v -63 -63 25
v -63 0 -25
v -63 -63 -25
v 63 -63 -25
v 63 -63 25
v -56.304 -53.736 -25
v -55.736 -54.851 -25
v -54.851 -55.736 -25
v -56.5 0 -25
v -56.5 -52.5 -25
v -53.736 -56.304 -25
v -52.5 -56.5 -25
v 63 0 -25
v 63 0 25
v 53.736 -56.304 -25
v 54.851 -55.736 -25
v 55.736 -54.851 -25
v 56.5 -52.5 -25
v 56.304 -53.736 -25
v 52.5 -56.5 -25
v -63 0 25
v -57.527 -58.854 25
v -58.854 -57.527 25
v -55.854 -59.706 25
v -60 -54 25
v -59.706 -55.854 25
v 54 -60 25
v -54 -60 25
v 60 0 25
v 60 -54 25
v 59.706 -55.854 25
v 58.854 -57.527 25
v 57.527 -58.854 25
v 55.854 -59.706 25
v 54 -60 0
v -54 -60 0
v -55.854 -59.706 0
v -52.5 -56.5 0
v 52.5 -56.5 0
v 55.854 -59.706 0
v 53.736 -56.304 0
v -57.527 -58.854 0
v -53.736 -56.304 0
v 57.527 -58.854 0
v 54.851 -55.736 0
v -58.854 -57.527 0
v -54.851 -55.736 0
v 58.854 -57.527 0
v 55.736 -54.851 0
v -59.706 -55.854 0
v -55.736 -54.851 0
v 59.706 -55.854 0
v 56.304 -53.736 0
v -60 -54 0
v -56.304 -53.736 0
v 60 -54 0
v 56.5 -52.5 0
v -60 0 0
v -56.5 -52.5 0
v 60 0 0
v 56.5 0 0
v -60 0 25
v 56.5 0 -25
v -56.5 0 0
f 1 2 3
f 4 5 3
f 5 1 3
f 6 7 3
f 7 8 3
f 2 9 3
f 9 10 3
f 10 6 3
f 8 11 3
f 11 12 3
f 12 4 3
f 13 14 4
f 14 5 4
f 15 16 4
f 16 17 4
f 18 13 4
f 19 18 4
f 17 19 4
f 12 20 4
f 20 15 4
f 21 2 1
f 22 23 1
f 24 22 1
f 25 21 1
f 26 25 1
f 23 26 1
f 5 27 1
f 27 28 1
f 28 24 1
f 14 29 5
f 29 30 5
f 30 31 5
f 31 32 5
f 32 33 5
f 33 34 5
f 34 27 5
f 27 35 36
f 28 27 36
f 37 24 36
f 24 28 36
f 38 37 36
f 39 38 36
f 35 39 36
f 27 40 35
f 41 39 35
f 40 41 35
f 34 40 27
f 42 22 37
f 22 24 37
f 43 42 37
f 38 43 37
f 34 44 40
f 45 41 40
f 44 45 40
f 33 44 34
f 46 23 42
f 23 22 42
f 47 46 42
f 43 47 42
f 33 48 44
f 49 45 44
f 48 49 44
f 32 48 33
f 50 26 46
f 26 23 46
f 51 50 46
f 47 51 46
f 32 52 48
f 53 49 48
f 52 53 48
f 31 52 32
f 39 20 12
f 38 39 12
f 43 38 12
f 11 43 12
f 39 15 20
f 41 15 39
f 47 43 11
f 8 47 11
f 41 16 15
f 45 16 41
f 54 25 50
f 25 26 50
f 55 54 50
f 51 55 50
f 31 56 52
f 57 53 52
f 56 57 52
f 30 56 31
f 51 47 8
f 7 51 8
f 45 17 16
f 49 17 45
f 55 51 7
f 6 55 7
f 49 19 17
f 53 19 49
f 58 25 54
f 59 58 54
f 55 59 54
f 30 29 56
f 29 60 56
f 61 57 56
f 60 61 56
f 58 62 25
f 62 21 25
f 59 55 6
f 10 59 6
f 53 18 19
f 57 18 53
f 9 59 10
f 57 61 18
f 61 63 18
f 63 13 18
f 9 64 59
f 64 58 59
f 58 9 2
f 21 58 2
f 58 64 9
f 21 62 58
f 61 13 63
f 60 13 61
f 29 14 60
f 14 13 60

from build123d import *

# Parameters (mm, degrees)
BOSS_EXTRUDE1_DEPTH = 25
FILLET1_R           = 6
BOSS_EXTRUDE2_DEPTH = 25
FILLET2_R           = 4


with BuildPart() as part:
    # Sketch2 → Boss-Extrude1 (new body)
    with BuildSketch(Plane.XY):
        Polygon((-63, 0), (-60, 0), (-60, -60), (60, -60), (60, 0), (63, 0), (63, -63), (-63, -63), align=None)
    extrude(amount=BOSS_EXTRUDE1_DEPTH)

    # Fillet1
    fillet1_edges = [part.edges().sort_by_distance(p)[0] for p in [
        (-60, -60, 12.5),
        (60, -60, 12.5),
    ]]
    fillet(fillet1_edges, radius=FILLET1_R)

    # Sketch3 → Boss-Extrude2 (add)
    with BuildSketch(Plane(origin=(0, 0, 0), x_dir=(-1, 0, 0), z_dir=(0, 0, -1))):
        Polygon((63, -63), (63, 0), (56.5, 0), (56.5, -56.5), (-56.5, -56.5), (-56.5, 0), (-63, 0), (-63, -63), align=None)
    extrude(amount=BOSS_EXTRUDE2_DEPTH)

    # Fillet2
    fillet2_edges = [part.edges().sort_by_distance(p)[0] for p in [
        (-56.5, -56.5, -12.5),
        (56.5, -56.5, -12.5),
    ]]
    fillet(fillet2_edges, radius=FILLET2_R)


solid = part.part
